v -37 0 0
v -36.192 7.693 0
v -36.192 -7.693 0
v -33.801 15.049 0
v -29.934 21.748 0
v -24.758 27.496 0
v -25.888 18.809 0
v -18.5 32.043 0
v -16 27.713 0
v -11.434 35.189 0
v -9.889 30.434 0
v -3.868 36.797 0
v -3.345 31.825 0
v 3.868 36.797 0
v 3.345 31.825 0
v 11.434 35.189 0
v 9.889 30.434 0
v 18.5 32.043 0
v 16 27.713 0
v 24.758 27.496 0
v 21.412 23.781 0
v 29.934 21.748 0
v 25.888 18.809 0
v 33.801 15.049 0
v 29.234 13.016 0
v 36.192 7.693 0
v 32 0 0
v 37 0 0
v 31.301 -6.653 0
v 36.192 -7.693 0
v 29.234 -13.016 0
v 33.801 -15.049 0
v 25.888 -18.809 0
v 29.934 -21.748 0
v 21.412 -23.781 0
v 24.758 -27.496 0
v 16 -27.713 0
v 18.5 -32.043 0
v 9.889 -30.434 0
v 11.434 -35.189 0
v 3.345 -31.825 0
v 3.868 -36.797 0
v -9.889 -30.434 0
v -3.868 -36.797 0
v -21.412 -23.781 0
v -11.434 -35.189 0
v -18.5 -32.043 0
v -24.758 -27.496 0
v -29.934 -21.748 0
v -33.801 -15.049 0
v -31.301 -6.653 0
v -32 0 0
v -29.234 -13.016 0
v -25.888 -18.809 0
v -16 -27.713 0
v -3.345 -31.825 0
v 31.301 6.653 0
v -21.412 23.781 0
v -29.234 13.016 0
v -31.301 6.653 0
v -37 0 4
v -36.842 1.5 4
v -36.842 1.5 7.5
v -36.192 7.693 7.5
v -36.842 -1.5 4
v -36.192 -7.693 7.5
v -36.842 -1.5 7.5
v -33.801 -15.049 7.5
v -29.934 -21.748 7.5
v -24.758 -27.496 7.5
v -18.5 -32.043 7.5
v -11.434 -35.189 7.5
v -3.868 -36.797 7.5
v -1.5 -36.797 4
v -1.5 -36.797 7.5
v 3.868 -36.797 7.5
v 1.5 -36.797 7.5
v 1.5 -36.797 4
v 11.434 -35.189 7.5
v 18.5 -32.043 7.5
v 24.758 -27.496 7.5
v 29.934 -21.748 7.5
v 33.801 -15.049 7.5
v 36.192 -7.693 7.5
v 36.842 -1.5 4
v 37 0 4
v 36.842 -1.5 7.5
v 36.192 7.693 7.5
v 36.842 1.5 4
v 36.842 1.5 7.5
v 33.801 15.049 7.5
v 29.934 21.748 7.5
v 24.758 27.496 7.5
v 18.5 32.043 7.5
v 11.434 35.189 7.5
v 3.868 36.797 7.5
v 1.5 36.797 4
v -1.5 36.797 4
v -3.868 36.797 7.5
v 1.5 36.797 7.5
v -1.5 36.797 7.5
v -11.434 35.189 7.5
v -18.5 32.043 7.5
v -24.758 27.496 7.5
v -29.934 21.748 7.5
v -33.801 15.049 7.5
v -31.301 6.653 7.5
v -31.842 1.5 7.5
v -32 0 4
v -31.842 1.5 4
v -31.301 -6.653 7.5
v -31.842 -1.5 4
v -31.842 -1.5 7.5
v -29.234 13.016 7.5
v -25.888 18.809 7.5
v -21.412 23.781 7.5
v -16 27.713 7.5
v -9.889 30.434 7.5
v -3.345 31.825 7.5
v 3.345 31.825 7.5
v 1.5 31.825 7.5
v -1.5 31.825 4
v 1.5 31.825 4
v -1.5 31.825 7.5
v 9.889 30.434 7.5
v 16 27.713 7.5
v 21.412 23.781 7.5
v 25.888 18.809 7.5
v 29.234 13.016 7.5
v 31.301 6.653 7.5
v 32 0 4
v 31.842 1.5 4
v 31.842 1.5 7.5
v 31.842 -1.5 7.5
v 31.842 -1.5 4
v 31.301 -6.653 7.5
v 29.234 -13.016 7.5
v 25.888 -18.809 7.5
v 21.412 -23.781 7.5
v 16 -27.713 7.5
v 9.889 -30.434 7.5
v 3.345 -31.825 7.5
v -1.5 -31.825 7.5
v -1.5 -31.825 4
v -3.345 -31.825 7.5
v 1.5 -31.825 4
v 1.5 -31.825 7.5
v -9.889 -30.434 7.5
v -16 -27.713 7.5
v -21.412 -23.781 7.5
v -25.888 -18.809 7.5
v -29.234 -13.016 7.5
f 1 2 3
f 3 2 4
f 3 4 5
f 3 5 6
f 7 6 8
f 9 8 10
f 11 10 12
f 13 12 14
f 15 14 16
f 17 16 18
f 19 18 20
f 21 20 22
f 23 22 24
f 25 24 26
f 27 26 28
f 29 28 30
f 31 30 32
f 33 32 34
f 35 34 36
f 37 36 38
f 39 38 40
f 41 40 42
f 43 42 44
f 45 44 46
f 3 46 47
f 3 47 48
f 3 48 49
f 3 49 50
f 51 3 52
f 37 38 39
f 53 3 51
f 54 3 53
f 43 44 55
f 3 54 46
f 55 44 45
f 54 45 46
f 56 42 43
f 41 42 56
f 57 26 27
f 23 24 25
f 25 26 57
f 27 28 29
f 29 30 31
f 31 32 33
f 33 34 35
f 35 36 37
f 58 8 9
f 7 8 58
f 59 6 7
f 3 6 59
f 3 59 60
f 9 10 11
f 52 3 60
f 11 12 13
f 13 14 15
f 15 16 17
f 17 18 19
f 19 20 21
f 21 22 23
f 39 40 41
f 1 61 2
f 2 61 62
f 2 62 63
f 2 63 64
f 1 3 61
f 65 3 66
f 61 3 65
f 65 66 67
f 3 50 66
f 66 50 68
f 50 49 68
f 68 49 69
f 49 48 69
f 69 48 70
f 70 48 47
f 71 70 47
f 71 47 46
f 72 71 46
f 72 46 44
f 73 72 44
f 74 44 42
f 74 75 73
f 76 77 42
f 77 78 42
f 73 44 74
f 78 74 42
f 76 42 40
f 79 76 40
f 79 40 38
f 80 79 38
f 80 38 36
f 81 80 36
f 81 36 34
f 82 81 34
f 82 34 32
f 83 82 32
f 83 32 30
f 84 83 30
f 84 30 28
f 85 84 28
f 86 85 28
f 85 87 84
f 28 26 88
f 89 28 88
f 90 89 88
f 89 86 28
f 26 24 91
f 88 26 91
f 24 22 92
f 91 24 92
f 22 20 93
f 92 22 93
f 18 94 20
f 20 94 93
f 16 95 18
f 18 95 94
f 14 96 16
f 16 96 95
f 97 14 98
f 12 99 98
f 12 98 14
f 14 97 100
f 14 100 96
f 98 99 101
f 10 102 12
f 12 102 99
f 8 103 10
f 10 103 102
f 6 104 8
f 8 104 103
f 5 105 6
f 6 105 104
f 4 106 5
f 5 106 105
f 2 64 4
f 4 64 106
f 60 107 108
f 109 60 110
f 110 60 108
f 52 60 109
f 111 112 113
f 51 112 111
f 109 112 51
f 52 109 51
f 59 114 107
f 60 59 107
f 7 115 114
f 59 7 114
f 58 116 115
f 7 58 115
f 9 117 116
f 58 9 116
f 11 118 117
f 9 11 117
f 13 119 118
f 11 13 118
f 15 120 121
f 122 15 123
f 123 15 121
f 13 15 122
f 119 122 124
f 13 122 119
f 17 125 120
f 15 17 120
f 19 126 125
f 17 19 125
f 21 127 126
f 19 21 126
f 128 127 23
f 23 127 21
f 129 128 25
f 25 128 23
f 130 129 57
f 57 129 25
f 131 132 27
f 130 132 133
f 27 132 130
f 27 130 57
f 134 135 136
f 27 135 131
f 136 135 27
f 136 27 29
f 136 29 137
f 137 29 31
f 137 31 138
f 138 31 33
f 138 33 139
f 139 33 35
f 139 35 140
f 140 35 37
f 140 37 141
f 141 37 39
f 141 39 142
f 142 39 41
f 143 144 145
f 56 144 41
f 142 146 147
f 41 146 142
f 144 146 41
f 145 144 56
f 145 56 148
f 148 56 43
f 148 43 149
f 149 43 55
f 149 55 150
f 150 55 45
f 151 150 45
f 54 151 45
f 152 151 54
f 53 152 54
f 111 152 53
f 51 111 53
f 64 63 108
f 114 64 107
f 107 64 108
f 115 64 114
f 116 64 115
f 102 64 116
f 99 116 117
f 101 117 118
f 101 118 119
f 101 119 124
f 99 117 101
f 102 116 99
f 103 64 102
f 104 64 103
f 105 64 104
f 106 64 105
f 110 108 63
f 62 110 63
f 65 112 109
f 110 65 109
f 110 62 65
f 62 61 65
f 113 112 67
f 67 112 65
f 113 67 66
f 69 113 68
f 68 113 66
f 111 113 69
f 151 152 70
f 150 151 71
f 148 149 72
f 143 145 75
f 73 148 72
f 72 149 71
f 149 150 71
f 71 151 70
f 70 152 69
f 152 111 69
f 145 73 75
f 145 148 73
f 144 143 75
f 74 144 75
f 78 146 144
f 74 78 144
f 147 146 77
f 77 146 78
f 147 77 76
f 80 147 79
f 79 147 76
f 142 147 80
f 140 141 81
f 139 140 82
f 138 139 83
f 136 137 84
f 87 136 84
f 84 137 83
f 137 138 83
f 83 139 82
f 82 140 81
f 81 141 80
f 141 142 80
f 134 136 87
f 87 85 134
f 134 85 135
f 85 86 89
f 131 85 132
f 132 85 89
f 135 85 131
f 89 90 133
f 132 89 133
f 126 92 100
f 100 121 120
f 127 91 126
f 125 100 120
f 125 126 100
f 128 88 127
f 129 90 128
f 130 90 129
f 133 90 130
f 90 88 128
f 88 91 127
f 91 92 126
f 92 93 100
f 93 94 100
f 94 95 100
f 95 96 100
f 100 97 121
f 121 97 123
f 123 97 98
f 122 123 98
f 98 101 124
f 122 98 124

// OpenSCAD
difference() {
	cylinder(h = 7.5, r = 37);
	translate(v = [0, 0, -1]) cylinder(h = 9.5, r = 32);
	for (i = [0:3]) {
		rotate([0,0,i*90])
		translate(v = [30, -1.5, 4])
		cube(size = [10,3,4]);
	}
}
